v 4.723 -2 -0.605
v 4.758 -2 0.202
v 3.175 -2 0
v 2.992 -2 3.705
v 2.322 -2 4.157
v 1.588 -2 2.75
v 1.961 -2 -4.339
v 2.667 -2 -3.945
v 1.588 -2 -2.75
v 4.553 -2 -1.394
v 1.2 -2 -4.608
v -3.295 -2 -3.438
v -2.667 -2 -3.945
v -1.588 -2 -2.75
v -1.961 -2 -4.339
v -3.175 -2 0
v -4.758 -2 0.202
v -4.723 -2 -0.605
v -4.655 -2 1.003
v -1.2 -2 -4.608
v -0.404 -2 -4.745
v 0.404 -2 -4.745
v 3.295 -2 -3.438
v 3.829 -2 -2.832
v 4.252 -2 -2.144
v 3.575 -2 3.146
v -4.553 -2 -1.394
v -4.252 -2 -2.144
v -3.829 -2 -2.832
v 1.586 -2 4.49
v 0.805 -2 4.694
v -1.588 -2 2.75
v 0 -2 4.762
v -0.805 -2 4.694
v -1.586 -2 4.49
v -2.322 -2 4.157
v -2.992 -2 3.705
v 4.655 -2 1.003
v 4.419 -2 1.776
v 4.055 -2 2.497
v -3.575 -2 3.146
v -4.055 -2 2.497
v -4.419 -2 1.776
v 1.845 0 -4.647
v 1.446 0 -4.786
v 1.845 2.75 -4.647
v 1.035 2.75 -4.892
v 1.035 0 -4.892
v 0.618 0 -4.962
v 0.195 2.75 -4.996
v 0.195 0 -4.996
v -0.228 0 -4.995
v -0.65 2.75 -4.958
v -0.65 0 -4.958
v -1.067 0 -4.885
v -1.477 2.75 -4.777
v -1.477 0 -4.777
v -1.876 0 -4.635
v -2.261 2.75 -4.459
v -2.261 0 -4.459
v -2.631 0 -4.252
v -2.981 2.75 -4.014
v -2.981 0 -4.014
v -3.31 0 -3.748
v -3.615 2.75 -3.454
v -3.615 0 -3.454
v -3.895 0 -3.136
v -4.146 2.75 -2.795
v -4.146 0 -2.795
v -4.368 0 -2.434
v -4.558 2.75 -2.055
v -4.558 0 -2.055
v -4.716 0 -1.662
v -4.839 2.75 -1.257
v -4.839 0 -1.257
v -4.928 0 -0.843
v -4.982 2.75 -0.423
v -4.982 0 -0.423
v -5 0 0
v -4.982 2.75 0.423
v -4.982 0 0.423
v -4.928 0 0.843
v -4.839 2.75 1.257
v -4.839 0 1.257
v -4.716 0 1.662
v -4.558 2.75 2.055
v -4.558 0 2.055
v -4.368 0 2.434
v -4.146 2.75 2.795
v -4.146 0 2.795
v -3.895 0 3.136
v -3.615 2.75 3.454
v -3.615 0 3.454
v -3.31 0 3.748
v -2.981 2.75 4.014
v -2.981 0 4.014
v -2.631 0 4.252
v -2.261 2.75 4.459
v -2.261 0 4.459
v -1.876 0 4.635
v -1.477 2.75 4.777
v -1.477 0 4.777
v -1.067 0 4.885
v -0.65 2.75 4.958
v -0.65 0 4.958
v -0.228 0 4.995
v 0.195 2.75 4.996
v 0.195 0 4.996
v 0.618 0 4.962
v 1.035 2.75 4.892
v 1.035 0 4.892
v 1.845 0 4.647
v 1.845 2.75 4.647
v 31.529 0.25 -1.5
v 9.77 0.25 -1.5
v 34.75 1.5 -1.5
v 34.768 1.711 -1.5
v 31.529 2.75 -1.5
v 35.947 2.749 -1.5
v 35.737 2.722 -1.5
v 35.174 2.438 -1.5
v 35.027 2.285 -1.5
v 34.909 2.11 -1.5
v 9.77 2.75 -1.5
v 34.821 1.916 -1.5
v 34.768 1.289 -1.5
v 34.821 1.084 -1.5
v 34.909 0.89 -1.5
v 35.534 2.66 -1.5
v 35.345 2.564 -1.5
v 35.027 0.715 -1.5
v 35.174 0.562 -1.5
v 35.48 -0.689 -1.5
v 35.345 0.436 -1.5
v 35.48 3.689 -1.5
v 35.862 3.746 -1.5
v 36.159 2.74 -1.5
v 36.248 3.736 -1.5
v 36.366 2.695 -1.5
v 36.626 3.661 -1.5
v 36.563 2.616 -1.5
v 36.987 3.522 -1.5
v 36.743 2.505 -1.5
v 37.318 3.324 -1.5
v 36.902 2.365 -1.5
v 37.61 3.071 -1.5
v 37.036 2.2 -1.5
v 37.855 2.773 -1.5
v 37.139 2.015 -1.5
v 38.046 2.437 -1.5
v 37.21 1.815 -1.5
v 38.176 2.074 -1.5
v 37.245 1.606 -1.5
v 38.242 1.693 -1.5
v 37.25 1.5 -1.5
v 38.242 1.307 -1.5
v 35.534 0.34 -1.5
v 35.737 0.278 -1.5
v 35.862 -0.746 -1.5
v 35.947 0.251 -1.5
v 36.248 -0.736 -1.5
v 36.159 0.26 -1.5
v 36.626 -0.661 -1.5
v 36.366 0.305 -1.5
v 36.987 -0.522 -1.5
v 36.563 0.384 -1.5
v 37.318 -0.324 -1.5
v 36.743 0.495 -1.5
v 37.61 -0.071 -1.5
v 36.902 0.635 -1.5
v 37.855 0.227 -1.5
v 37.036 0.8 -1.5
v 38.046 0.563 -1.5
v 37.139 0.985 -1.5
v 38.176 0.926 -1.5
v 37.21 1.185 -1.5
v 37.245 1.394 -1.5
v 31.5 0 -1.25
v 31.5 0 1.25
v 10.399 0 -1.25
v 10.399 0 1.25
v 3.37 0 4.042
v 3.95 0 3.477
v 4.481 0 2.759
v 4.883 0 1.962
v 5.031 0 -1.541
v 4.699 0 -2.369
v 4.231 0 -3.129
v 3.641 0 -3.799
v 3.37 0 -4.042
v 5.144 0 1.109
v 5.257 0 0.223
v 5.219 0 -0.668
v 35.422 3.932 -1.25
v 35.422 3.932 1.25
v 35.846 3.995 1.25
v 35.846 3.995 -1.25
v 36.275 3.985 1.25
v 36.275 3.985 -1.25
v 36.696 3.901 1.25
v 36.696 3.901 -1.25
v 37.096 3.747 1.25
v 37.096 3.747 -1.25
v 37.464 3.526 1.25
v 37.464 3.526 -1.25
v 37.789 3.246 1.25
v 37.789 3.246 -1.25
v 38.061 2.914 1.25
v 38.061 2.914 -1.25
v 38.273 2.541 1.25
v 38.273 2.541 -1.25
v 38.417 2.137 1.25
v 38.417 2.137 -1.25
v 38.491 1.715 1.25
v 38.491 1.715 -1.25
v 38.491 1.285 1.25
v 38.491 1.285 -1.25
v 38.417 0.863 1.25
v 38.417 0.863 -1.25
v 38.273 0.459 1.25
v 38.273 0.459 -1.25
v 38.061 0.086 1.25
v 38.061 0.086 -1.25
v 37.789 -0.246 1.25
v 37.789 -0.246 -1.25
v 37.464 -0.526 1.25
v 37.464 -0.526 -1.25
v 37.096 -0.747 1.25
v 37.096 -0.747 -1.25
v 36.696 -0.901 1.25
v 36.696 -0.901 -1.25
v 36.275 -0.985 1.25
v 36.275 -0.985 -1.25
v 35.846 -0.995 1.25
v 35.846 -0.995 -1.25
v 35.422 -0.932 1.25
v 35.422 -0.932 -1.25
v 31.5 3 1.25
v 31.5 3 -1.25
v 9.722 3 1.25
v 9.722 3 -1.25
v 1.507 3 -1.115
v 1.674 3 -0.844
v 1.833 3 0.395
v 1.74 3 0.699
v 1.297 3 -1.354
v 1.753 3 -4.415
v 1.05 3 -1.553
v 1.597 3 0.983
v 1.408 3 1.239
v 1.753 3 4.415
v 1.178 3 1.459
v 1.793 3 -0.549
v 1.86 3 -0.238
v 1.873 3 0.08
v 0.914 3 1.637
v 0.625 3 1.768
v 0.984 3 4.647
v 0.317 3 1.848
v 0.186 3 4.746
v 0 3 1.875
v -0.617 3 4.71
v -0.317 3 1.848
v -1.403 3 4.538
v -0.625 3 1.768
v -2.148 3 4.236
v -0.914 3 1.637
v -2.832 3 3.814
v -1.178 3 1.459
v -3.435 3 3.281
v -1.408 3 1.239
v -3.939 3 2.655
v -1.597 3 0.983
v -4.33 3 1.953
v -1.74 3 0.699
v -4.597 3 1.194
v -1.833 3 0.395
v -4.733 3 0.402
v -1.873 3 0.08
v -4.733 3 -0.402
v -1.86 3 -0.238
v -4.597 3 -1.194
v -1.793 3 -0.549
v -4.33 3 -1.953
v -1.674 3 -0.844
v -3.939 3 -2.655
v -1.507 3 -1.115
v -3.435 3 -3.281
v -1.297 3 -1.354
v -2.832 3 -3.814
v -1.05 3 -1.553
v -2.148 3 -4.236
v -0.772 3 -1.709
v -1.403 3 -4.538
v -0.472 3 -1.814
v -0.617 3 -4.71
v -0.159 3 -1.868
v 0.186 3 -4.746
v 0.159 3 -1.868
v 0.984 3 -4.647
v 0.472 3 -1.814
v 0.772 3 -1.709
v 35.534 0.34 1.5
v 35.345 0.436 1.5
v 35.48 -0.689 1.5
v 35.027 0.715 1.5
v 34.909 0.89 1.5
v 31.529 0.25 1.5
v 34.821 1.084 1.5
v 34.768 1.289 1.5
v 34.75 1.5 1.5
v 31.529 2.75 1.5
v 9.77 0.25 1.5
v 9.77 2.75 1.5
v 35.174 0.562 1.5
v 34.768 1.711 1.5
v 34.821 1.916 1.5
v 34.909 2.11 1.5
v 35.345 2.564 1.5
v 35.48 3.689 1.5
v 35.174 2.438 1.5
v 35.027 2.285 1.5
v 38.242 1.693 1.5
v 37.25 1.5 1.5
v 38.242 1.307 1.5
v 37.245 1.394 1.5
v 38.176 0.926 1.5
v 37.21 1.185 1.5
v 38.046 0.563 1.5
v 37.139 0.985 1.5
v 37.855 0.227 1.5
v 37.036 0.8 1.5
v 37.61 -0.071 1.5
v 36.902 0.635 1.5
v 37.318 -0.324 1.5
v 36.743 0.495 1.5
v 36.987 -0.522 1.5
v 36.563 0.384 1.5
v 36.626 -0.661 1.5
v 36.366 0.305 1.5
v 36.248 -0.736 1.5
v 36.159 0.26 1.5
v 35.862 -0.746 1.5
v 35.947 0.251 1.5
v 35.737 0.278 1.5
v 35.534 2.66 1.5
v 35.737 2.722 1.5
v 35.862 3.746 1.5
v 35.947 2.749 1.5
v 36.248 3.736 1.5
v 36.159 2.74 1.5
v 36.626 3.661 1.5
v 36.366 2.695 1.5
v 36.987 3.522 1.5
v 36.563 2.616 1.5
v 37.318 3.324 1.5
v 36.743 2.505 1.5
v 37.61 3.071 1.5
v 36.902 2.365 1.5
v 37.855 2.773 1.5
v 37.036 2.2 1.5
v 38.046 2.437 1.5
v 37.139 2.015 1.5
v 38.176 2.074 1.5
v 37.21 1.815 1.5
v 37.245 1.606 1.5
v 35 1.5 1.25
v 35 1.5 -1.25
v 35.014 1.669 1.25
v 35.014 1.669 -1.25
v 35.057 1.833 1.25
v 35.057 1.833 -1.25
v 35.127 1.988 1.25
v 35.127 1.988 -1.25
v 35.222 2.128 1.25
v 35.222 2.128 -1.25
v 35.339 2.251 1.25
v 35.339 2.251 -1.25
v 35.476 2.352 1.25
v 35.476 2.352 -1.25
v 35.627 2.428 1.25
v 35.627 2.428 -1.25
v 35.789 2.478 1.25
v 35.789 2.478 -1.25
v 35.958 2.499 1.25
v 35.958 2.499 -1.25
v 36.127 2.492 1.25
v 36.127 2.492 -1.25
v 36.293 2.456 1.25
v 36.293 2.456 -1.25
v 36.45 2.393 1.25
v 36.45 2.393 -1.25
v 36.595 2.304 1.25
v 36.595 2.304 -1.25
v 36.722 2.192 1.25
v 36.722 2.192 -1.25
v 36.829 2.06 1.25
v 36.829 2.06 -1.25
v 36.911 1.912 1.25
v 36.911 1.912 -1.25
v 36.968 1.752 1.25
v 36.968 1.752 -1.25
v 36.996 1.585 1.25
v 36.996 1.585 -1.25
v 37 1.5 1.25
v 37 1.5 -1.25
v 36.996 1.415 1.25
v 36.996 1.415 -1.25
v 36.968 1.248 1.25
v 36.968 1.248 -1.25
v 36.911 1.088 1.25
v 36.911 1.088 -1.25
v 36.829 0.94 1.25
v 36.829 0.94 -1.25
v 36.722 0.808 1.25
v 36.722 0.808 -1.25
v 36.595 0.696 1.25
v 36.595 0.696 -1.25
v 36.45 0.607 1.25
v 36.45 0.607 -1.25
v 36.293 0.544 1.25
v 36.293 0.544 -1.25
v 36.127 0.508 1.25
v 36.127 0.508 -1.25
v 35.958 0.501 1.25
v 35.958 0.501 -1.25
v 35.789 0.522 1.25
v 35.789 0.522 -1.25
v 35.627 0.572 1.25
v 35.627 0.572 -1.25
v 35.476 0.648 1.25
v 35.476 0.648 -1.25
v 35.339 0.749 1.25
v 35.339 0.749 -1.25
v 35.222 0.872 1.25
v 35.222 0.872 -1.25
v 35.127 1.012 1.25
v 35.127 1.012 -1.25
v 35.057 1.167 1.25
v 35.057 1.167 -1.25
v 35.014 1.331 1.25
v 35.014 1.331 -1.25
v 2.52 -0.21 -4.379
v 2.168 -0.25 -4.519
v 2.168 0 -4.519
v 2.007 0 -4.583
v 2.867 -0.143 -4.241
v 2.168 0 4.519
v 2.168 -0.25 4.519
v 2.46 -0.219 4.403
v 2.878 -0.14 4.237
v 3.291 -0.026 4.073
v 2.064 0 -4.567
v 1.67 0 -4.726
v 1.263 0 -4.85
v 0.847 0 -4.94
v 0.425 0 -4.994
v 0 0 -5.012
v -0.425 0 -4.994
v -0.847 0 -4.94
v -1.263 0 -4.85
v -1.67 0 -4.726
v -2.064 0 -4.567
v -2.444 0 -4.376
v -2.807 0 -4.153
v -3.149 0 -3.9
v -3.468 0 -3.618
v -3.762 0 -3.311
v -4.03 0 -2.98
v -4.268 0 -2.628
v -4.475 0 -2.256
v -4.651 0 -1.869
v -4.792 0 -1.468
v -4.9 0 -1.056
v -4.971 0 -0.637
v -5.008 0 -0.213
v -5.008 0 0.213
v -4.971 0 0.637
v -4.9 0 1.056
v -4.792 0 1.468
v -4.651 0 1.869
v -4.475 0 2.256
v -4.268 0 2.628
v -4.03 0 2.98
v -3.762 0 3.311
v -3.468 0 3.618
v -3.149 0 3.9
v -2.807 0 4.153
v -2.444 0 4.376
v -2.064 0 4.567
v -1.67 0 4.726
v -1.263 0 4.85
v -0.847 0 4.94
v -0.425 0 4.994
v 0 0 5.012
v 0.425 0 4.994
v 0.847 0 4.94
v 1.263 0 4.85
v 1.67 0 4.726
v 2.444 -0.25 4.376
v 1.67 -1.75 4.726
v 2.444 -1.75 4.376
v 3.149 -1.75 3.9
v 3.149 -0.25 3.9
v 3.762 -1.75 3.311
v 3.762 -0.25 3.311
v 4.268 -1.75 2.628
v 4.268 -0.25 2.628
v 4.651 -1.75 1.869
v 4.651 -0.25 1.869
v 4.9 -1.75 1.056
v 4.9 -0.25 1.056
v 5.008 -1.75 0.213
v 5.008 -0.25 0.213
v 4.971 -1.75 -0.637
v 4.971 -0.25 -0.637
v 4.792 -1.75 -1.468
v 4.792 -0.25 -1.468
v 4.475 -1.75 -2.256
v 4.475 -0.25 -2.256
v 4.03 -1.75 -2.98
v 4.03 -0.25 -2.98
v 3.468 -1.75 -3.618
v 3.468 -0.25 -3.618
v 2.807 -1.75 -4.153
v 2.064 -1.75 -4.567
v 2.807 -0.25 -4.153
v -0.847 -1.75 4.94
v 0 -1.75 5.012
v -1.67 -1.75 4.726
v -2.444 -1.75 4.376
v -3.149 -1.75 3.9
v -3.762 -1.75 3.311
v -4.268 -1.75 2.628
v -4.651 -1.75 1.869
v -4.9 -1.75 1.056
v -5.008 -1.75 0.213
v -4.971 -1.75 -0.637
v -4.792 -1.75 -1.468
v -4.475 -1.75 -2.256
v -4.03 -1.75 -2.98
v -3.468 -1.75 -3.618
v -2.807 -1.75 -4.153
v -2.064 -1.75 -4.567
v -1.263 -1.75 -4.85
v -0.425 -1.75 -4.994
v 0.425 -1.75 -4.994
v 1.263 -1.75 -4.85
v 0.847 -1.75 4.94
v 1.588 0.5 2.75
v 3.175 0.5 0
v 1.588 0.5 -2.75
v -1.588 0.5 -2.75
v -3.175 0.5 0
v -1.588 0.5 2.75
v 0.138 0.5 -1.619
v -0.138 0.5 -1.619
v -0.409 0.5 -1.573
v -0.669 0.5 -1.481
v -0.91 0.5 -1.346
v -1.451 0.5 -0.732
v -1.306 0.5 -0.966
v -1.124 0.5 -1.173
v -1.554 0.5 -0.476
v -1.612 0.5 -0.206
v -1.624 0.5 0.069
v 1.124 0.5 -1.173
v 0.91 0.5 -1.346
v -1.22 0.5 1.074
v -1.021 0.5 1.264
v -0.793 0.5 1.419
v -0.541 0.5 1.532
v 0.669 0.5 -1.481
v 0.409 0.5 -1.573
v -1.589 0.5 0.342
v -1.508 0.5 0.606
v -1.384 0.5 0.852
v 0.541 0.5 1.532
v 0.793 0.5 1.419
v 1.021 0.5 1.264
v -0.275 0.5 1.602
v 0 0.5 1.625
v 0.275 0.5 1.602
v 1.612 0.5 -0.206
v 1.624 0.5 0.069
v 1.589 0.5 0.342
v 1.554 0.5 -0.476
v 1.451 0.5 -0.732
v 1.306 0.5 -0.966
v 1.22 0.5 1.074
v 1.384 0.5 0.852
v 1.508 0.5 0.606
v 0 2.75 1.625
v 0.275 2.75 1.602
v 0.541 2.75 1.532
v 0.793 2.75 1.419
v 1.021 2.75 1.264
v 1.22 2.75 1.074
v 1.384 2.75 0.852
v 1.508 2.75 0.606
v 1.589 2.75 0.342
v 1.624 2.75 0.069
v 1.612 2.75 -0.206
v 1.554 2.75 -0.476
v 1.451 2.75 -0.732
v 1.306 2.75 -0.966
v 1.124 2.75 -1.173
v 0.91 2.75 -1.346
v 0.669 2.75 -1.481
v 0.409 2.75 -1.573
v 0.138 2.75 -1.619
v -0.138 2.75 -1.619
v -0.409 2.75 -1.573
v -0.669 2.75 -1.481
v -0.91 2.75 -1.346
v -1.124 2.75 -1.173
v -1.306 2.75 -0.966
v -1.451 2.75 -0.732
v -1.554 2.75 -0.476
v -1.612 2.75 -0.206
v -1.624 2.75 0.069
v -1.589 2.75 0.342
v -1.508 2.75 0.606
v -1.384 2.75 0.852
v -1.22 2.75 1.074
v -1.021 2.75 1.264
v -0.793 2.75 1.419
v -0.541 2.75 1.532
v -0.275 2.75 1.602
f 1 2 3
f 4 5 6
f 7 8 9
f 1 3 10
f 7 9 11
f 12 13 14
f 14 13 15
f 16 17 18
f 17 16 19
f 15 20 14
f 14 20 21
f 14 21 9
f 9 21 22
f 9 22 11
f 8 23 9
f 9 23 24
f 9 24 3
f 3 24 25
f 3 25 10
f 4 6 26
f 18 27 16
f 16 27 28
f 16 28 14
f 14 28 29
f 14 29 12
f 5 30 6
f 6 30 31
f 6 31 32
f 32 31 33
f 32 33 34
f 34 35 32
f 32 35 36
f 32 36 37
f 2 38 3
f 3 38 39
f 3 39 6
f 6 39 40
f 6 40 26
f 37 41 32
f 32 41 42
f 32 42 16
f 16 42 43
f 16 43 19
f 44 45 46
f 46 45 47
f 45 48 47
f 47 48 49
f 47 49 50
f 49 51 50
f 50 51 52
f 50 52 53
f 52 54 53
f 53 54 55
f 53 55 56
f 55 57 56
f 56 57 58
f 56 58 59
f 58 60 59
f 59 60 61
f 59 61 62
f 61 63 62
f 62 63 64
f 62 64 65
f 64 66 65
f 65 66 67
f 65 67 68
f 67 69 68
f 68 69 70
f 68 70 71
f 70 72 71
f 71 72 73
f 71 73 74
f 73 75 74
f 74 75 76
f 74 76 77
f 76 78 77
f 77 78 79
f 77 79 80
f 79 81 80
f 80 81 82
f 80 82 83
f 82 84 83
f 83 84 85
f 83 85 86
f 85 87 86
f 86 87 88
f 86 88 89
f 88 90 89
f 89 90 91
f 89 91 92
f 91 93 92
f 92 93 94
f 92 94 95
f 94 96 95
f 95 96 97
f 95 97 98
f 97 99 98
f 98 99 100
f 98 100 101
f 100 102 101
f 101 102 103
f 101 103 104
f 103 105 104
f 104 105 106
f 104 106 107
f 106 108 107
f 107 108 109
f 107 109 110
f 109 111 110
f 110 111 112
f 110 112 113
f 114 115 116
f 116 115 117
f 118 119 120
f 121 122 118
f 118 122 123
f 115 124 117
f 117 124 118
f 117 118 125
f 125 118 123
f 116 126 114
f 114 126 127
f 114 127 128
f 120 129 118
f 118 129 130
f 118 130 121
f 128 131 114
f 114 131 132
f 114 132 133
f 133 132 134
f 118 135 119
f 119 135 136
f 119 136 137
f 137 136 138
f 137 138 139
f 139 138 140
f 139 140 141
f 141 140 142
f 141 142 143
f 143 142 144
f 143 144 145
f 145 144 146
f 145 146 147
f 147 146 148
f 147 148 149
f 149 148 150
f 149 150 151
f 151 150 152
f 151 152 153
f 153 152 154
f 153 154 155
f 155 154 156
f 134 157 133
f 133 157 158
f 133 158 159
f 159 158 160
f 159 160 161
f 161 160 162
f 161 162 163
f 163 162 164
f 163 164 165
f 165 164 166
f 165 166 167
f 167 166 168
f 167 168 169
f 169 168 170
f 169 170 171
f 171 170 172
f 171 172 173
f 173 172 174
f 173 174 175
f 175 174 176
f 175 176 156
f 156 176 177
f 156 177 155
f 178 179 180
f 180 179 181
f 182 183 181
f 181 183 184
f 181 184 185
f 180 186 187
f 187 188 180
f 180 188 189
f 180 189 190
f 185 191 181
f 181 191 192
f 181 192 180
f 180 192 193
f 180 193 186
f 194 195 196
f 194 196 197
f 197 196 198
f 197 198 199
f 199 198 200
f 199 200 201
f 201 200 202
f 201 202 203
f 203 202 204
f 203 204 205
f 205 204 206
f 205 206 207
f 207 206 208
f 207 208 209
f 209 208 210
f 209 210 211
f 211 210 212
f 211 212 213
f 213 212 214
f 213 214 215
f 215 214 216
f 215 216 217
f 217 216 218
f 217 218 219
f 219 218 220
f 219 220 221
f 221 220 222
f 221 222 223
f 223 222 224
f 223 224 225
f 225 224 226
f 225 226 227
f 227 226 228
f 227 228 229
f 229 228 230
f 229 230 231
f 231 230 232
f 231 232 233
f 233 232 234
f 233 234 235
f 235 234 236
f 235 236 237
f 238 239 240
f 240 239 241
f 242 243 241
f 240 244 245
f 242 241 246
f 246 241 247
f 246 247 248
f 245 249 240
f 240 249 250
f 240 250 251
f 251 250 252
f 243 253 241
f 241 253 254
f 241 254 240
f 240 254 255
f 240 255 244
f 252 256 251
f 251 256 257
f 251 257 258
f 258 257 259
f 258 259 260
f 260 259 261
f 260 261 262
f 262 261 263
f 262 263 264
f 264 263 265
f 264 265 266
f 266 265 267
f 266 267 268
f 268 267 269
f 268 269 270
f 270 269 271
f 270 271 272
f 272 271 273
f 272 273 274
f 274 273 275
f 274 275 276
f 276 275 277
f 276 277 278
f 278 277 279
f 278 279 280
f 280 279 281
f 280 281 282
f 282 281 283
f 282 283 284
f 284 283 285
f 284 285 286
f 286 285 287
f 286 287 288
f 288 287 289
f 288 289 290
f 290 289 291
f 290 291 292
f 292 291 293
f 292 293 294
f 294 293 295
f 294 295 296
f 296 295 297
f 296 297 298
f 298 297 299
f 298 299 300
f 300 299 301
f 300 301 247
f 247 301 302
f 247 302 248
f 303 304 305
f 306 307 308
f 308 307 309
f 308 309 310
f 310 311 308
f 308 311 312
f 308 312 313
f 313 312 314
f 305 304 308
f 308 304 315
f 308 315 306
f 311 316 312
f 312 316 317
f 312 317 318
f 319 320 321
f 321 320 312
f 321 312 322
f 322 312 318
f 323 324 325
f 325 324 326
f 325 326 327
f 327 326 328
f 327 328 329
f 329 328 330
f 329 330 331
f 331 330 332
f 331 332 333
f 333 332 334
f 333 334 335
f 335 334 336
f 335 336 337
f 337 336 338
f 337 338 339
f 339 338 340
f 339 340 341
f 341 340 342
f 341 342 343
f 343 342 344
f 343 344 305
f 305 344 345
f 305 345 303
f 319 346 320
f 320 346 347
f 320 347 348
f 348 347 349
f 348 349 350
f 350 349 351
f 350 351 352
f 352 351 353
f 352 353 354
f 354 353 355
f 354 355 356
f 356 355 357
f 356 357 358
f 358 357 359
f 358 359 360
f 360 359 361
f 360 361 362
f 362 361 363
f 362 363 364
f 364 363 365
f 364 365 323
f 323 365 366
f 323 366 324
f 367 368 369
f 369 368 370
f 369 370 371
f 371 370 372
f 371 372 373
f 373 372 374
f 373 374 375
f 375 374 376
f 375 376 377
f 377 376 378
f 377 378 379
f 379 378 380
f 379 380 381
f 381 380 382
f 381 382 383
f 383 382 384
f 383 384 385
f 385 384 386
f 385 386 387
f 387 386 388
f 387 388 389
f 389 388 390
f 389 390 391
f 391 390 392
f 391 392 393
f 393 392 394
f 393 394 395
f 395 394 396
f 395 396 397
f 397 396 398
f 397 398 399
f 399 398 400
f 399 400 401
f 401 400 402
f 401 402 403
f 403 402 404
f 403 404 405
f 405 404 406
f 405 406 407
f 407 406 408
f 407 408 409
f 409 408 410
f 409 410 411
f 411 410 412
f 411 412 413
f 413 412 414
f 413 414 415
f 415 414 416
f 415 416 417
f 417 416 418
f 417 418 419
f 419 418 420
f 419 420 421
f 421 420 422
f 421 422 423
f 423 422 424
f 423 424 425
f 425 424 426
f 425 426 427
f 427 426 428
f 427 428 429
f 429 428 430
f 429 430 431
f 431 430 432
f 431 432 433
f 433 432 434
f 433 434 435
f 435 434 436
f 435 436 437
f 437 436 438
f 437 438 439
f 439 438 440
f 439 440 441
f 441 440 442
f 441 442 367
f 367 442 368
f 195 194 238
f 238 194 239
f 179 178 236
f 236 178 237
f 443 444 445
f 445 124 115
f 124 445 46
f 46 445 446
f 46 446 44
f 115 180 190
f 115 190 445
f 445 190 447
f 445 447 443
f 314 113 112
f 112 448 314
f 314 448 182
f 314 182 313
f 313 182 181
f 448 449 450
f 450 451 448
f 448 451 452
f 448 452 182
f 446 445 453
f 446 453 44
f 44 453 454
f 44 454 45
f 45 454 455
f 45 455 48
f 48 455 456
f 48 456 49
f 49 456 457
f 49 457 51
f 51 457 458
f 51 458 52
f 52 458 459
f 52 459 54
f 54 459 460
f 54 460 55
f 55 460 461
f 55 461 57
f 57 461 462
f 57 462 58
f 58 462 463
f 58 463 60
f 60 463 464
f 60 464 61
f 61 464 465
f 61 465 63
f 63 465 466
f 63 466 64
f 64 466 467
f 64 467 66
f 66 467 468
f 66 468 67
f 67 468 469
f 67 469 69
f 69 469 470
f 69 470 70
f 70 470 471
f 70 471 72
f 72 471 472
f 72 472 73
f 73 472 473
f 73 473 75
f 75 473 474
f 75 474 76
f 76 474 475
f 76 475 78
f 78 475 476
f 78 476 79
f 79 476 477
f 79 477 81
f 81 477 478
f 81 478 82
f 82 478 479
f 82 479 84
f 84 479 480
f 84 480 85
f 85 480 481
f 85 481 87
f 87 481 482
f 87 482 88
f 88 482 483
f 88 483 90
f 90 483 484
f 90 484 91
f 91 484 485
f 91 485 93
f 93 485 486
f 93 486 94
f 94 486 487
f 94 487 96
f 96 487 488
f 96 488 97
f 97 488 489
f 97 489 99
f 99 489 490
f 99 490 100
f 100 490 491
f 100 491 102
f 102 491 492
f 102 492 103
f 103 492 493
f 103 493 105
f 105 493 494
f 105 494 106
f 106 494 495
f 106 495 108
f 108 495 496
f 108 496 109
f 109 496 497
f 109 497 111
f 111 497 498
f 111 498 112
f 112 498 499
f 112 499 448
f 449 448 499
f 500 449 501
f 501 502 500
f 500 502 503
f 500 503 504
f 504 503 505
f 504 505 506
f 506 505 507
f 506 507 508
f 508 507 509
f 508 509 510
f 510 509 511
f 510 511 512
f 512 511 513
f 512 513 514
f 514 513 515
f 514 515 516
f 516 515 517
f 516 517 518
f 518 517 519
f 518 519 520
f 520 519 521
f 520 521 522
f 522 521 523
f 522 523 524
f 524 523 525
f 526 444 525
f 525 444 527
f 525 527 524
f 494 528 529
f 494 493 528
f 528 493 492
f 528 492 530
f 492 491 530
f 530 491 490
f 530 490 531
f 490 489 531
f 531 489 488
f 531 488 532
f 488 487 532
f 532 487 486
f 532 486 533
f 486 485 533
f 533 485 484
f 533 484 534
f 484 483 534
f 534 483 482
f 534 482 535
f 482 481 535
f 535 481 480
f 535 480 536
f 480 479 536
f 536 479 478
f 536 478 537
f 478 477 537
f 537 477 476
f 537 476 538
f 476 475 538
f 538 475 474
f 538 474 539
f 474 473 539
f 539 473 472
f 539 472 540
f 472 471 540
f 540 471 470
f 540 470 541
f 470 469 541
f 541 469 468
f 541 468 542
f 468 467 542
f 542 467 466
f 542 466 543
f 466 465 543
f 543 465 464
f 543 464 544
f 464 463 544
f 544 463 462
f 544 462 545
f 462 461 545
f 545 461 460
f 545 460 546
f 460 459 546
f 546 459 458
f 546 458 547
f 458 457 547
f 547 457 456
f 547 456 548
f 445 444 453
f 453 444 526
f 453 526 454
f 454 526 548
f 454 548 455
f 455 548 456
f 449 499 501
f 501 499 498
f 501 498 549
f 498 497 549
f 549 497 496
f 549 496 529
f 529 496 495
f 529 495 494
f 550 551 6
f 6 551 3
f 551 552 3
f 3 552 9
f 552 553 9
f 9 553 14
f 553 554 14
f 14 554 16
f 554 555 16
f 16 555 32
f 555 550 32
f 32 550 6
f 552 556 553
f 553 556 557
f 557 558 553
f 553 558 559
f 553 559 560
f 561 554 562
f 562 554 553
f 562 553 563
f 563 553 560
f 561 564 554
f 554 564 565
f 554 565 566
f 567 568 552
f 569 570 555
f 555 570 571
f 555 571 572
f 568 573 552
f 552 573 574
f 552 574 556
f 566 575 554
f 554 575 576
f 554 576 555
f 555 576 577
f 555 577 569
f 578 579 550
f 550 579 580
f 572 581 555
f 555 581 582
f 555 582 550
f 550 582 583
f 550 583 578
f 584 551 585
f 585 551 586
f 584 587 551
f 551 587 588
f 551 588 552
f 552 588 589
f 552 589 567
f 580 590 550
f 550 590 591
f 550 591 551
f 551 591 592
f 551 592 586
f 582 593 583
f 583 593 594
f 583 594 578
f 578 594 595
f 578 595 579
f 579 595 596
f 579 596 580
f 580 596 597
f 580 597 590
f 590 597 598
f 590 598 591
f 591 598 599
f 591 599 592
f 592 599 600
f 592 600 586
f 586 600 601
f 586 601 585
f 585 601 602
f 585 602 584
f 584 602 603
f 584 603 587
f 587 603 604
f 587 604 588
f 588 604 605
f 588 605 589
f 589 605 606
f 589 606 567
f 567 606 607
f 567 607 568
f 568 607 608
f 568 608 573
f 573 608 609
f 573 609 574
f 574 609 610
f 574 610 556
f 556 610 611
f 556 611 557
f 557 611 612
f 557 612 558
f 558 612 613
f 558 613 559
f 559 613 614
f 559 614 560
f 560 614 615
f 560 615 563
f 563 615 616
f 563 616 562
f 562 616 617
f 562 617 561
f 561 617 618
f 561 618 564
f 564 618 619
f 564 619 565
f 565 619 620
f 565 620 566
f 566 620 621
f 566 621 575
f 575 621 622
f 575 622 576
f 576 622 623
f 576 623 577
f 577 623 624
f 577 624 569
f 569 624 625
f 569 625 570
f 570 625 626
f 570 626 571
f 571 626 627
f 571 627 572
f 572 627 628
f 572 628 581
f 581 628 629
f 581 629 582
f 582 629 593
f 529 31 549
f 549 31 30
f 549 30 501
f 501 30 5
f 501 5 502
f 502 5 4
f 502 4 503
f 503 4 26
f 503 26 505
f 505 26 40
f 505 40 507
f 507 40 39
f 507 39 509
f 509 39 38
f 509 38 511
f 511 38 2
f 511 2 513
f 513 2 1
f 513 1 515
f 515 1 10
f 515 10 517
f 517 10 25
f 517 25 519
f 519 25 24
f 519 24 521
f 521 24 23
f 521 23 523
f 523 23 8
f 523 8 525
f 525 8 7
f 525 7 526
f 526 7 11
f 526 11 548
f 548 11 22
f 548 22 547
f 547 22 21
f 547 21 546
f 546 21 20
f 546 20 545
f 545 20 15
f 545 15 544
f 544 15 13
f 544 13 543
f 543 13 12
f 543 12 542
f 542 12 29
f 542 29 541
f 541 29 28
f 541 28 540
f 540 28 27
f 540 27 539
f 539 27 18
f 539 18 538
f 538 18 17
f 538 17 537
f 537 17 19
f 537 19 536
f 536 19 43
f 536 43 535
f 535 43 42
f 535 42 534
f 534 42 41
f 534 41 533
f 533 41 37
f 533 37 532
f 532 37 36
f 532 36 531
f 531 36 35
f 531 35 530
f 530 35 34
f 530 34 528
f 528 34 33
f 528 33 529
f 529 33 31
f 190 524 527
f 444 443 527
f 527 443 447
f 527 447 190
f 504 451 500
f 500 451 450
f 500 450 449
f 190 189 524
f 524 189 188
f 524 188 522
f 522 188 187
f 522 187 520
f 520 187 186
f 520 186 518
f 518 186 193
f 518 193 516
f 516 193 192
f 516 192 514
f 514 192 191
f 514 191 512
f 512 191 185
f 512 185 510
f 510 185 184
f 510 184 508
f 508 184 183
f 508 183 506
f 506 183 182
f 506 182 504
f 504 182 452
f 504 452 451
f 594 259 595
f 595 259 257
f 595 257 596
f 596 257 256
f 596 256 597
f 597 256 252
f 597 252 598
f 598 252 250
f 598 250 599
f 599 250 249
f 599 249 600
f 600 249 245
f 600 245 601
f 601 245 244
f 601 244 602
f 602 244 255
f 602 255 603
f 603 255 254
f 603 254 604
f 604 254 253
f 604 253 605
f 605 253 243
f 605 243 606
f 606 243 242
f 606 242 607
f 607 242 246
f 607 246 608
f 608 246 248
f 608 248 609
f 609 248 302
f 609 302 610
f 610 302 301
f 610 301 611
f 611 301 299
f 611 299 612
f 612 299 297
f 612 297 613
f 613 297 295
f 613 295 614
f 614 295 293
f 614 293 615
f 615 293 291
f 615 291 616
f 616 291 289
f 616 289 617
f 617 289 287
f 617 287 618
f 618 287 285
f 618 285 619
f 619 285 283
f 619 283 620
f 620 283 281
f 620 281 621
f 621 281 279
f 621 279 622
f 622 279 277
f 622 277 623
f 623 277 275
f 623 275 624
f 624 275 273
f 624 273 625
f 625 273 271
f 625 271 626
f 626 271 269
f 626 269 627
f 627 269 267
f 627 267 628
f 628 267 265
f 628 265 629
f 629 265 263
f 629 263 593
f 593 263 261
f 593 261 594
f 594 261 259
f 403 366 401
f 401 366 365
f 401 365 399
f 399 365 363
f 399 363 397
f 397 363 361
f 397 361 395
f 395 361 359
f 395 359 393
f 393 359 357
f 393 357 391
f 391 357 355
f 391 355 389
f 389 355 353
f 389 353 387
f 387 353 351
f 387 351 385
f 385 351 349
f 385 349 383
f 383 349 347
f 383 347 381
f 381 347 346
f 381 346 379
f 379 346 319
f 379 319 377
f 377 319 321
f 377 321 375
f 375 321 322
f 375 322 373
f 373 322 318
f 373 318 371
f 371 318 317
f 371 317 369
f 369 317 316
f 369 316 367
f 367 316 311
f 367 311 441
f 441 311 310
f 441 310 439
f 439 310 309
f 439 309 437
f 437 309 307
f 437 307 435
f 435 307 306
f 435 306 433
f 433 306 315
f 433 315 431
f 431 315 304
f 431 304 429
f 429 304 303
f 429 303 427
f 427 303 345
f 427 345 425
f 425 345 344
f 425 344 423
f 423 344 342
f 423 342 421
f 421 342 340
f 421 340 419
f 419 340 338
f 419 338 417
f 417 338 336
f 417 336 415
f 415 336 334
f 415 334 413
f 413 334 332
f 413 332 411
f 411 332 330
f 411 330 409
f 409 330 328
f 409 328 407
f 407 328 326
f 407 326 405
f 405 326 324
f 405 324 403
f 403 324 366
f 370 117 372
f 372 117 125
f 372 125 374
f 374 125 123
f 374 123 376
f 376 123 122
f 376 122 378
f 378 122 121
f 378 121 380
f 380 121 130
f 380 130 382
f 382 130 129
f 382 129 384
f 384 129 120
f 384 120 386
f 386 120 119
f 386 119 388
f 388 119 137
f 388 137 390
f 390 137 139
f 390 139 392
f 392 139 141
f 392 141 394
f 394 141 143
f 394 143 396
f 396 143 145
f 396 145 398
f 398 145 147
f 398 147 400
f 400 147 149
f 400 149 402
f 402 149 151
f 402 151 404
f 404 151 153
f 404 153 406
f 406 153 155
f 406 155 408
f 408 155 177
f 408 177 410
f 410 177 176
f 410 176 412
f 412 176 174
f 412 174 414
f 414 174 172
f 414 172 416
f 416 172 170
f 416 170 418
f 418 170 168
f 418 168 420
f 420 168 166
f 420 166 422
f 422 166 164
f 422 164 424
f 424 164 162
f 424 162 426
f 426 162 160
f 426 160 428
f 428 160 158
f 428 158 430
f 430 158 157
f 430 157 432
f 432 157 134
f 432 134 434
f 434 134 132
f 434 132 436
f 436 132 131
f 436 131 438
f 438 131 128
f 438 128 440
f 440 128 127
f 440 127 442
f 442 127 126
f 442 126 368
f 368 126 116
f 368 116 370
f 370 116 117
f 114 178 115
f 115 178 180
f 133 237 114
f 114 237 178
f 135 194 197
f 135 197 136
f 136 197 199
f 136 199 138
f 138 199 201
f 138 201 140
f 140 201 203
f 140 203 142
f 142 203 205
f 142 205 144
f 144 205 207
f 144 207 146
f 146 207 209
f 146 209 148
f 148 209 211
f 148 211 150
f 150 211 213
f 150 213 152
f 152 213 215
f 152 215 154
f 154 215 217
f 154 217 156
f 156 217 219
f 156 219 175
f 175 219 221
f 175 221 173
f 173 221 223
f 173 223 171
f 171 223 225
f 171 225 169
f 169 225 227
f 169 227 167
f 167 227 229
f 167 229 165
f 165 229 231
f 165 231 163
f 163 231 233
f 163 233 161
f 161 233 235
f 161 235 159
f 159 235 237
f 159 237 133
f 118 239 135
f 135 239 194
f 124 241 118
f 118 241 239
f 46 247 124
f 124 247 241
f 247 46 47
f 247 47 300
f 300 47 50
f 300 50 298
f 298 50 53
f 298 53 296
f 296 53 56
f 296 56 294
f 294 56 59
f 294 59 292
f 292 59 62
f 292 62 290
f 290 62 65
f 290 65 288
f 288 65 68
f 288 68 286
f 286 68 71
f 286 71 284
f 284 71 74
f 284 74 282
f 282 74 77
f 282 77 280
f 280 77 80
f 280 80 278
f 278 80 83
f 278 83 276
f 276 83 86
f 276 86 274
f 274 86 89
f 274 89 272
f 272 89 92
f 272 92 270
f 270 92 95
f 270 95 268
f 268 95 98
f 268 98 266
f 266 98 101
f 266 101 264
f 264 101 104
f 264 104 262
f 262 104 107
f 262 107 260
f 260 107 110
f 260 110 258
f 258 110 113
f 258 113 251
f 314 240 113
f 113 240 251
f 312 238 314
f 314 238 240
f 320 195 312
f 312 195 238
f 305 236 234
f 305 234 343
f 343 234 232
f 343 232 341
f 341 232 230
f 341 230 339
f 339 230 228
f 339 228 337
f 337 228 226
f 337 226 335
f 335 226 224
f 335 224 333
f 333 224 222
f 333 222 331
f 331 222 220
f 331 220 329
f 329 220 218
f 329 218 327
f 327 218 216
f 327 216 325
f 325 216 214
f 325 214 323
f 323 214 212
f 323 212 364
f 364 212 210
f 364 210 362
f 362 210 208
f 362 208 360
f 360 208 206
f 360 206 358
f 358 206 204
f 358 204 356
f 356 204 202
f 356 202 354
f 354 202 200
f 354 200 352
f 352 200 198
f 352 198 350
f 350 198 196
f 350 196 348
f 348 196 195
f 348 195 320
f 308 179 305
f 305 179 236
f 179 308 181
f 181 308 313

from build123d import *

# Parameters (mm, degrees)
EXTRUDE_1_DEPTH     = 3
EXTRUDE_START       = 1.5
SKETCH_2_R          = 2.5
EXTRUDE_2_DEPTH     = 3
CUT_EXTRUDE_START   = -1.5
SKETCH_3_R          = 1
CUT_EXTRUDE_1_DEPTH = 3
EXTRUDE_3_DEPTH     = 3
EXTRUDE_4_DEPTH     = 3
SKETCH_7_R          = 5.01204864
EXTRUDE_5_DEPTH     = 2
CUT_EXTRUDE_START_2 = -2
CUT_EXTRUDE_2_DEPTH = 2.5
CUT_EXTRUDE_START_3 = 3
SKETCH_9_R          = 1.625
CUT_EXTRUDE_3_DEPTH = 5
CHAMFER_3_SIZE      = 0.25


with BuildPart() as part:
    # 草图1 → 凸台-拉伸1 (new body)
    with BuildSketch(Plane(origin=(0, 0, 0), x_dir=(1, 0, 0), z_dir=(0, 1, 0))):
        with BuildLine():
            Line((36, -1.5), (36, 1.5))
            Line((36, 1.5), (4.769696007, 1.5))
            ThreePointArc((4.769696007, 1.5), (-5, 0), (4.769696007, -1.5))
            Line((4.769696007, -1.5), (36, -1.5))
        make_face()
    extrude(amount=EXTRUDE_1_DEPTH)

    # 草图2 → 凸台-拉伸2 (add)
    with BuildSketch(Plane.XY.offset(EXTRUDE_START)):
        with Locations((36, 1.5)):
            Circle(SKETCH_2_R)
    extrude(amount=-EXTRUDE_2_DEPTH)

    # 草图3 → 切除-拉伸1 (cut)
    with BuildSketch(Plane.XY.offset(CUT_EXTRUDE_START)):
        with Locations(Location((36, 1.5, 0), (0, 0, 180))):
            Circle(SKETCH_3_R)
    extrude(amount=CUT_EXTRUDE_1_DEPTH, mode=Mode.SUBTRACT)

    # 草图5 → 凸台-拉伸3 (add)
    with BuildSketch(Plane.XY.offset(EXTRUDE_START)):
        with BuildLine():
            ThreePointArc((35.421854812, 3.932231104), (34.629244055, 3.590700395), (34, 3))
            Line((34, 3), (31.5, 3))
            Line((31.5, 3), (35.421854812, 3.932231104))
        make_face()
        with BuildLine():
            ThreePointArc((34, 0), (34.629244055, -0.590700395), (35.421854812, -0.932231104))
            Line((35.421854812, -0.932231104), (31.5, 0))
            Line((31.5, 0), (34, 0))
        make_face()
    extrude(amount=-EXTRUDE_3_DEPTH)

    # 草图6 → 凸台-拉伸4 (add)
    with BuildSketch(Plane(origin=(0, 0, 0), x_dir=(1, 0, 0), z_dir=(0, 1, 0))):
        with BuildLine():
            ThreePointArc((4.769696007, 1.5), (3.662773496, 3.40354085), (1.845456766, 4.646965604))
            Line((1.845456766, 4.646965604), (9.769696007, 1.5))
            Line((9.769696007, 1.5), (4.769696007, 1.5))
        make_face()
        with BuildLine():
            ThreePointArc((1.845456766, -4.646965604), (3.662773496, -3.40354085), (4.769696007, -1.5))
            Line((4.769696007, -1.5), (9.769696007, -1.5))
            Line((9.769696007, -1.5), (1.845456766, -4.646965604))
        make_face()
    extrude(amount=EXTRUDE_4_DEPTH)

    # 草图7 → 凸台-拉伸5 (add)
    with BuildSketch(Plane(origin=(0, 0, 0), x_dir=(1, 0, 0), z_dir=(0, 1, 0))):
        with Locations(Location((0, 0, 0), (0, 0, 270))):
            Circle(SKETCH_7_R)
    extrude(amount=-EXTRUDE_5_DEPTH)

    # 草图8 → 切除-拉伸2 (cut)
    with BuildSketch(Plane(origin=(0, 0, 0), x_dir=(1, 0, 0), z_dir=(0, 1, 0)).offset(CUT_EXTRUDE_START_2)):
        Polygon((3.175426481, 0), (1.58771324, 2.75), (-1.58771324, 2.75), (-3.175426481, 0), (-1.58771324, -2.75), (1.58771324, -2.75), align=None)
    extrude(amount=CUT_EXTRUDE_2_DEPTH, mode=Mode.SUBTRACT)

    # 草图9 → 切除-拉伸3 (cut)
    with BuildSketch(Plane(origin=(0, 0, 0), x_dir=(1, 0, 0), z_dir=(0, 1, 0)).offset(CUT_EXTRUDE_START_3)):
        with Locations(Location((0, 0, 0), (0, 0, 270))):
            Circle(SKETCH_9_R)
    extrude(amount=-CUT_EXTRUDE_3_DEPTH, mode=Mode.SUBTRACT)

    # 倒角3
    # the kernel refuses this chamfer: 0.25 mm, written as the material it adds along each edge
    with BuildSketch(Plane(origin=(0, 0, 0), x_dir=(0.31362035772557234, 0, 0.949548456488706), z_dir=(-0.949548456488706, 0, 0.31362035772557234))) as chamfer_3_piece_1_section:
        Polygon((5.01204864 + CHAMFER_3_SIZE, 0), (5.01204864, -CHAMFER_3_SIZE), (5.01204864, 0), align=None)
    chamfer_3_piece_1 = revolve(axis=Axis((0, 0, 0), (0, 1, 0)), revolution_arc=143.444907743, mode=Mode.PRIVATE)
    chamfer_3_piece_1 = split(chamfer_3_piece_1, bisect_by=Plane(origin=(1.845456766, 0, 4.646965604), z_dir=(-0.3690913531117439, 0, -0.929393120836464)), keep=Keep.TOP, mode=Mode.PRIVATE)
    chamfer_3_piece_1 = split(chamfer_3_piece_1, bisect_by=Plane(origin=(1.845456766, 0, -4.646965604), z_dir=(-0.3690913531117441, 0, 0.9293931208364639)), keep=Keep.TOP, mode=Mode.PRIVATE)
    add(chamfer_3_piece_1)
    # the kernel refuses this chamfer: 0.25 mm, written as the material it takes off along each edge
    with BuildSketch(Plane(origin=(0, 3, 0), x_dir=(0, 0, 1), z_dir=(-1, 0, 0))) as chamfer_3_2_piece_1:
        Polygon((1.625 + CHAMFER_3_SIZE, 0), (1.625, -CHAMFER_3_SIZE), (1.625, 0), align=None)
    revolve(axis=Axis((0, 3, 0), (0, 1, 0)), mode=Mode.SUBTRACT)
    with BuildSketch(Plane(origin=(36, 1.5, 1.5), x_dir=(-1, 0, 0), z_dir=(0, 1, 0))) as chamfer_3_2_piece_2:
        Polygon((1 + CHAMFER_3_SIZE, 0), (1, -CHAMFER_3_SIZE), (1, 0), align=None)
    revolve(axis=Axis((36, 1.5, 1.5), (0, 0, 1)), mode=Mode.SUBTRACT)
    with BuildSketch(Plane(origin=(36, 1.5, -1.5), x_dir=(-1, 0, 0), z_dir=(0, 1, 0))) as chamfer_3_2_piece_3:
        Polygon((1, CHAMFER_3_SIZE), (1 + CHAMFER_3_SIZE, 0), (1, 0), align=None)
    revolve(axis=Axis((36, 1.5, -1.5), (0, 0, 1)), mode=Mode.SUBTRACT)
    with BuildSketch(Plane(origin=(36, 1.5, 1.5), x_dir=(-0.23125807505671483, -0.9728924414965218, 0), z_dir=(-0.9728924414965218, 0.23125807505671483, 0))) as chamfer_3_2_piece_4:
        Polygon((2.5 - CHAMFER_3_SIZE, 0), (2.5, -CHAMFER_3_SIZE), (2.5, 0), align=None)
    revolve(axis=Axis((36, 1.5, 1.5), (0, 0, 1)), revolution_arc=206.742302393, mode=Mode.SUBTRACT)
    with BuildSketch(Plane(origin=(32.142920747, 3, -1.5), x_dir=(0, 0, 1), z_dir=(-1, 0, 0))) as chamfer_3_2_piece_5_section:
        Polygon((CHAMFER_3_SIZE, 0), (0, -CHAMFER_3_SIZE), (0, 0), align=None)
    chamfer_3_2_piece_5 = extrude(amount=23.016145487, mode=Mode.PRIVATE)
    chamfer_3_2_piece_5 = split(chamfer_3_2_piece_5, bisect_by=Plane(origin=(32.15463621, 2.950713568, -1.449340307), z_dir=(-0.16352415307675153, 0.6879388427473303, -0.7071067811865444)), keep=Keep.TOP, mode=Mode.PRIVATE)
    chamfer_3_2_piece_5 = split(chamfer_3_2_piece_5, bisect_by=Plane(origin=(30.572849722, -1.253881896, 2.453528571), z_dir=(0.26098699866263353, 0.7071067811865455, -0.6571801781315938)), keep=Keep.TOP, mode=Mode.PRIVATE)
    add(chamfer_3_2_piece_5, mode=Mode.SUBTRACT)
    with BuildSketch(Plane(origin=(30.874507265, 2.851319386, -1.5), x_dir=(0, 0, 1), z_dir=(0.9728924414965218, 0.231258075056715, 0))) as chamfer_3_2_piece_6_section:
        Polygon((CHAMFER_3_SIZE, 0), (0, CHAMFER_3_SIZE), (0, 0), align=None)
    chamfer_3_2_piece_6 = extrude(amount=4.674049621, mode=Mode.PRIVATE)
    chamfer_3_2_piece_6 = split(chamfer_3_2_piece_6, bisect_by=Plane(origin=(30.874507265, 2.800659693, -1.449340307), z_dir=(0, 0.7071067811865476, -0.7071067811865476)), keep=Keep.TOP, mode=Mode.PRIVATE)
    add(chamfer_3_2_piece_6, mode=Mode.SUBTRACT)
    with BuildSketch(Plane(origin=(30.874507265, 2.851319386, 1.5), x_dir=(0.23125807505671495, -0.9728924414965217, 0), z_dir=(0.9728924414965218, 0.231258075056715, 0))) as chamfer_3_2_piece_7_section:
        Polygon((CHAMFER_3_SIZE, 0), (0, CHAMFER_3_SIZE), (0, 0), align=None)
    chamfer_3_2_piece_7 = extrude(amount=4.674049621, mode=Mode.PRIVATE)
    chamfer_3_2_piece_7 = split(chamfer_3_2_piece_7, bisect_by=Plane(origin=(30.874507265, 2.800659693, 1.449340307), z_dir=(0, 0.7071067811865476, 0.7071067811865476)), keep=Keep.TOP, mode=Mode.PRIVATE)
    add(chamfer_3_2_piece_7, mode=Mode.SUBTRACT)
    with BuildSketch(Plane(origin=(36, 1.5, -1.5), x_dir=(-0.23125807505671483, 0.9728924414965218, 0), z_dir=(-0.9728924414965218, -0.23125807505671483, 0))) as chamfer_3_2_piece_8:
        Polygon((2.5, -CHAMFER_3_SIZE), (2.5 - CHAMFER_3_SIZE, 0), (2.5, 0), align=None)
    revolve(axis=Axis((36, 1.5, -1.5), (0, 0, -1)), revolution_arc=206.742302393, mode=Mode.SUBTRACT)
    with BuildSketch(Plane(origin=(32.142920747, 0, -1.5), x_dir=(0, 0, 1), z_dir=(-1, 0, 0))) as chamfer_3_2_piece_9_section:
        Polygon((CHAMFER_3_SIZE, 0), (0, CHAMFER_3_SIZE), (0, 0), align=None)
    chamfer_3_2_piece_9 = extrude(amount=23.016145487, mode=Mode.PRIVATE)
    chamfer_3_2_piece_9 = split(chamfer_3_2_piece_9, bisect_by=Plane(origin=(29.095051535, 0, 6.174708862), z_dir=(0.3690913531117441, 0, -0.9293931208364639)), keep=Keep.TOP, mode=Mode.PRIVATE)
    chamfer_3_2_piece_9 = split(chamfer_3_2_piece_9, bisect_by=Plane(origin=(32.15463621, 0.049286432, -1.449340307), z_dir=(-0.16352415307675064, -0.6879388427473256, -0.7071067811865488)), keep=Keep.TOP, mode=Mode.PRIVATE)
    add(chamfer_3_2_piece_9, mode=Mode.SUBTRACT)
    with BuildSketch(Plane(origin=(35.421854812, -0.932231104, 1.5), x_dir=(0.23125807505671522, 0.9728924414965215, 0), z_dir=(-0.9728924414965217, 0.23125807505671525, 0))) as chamfer_3_2_piece_10_section:
        Polygon((CHAMFER_3_SIZE, 0), (0, CHAMFER_3_SIZE), (0, 0), align=None)
    chamfer_3_2_piece_10 = extrude(amount=4.674049621, mode=Mode.PRIVATE)
    chamfer_3_2_piece_10 = split(chamfer_3_2_piece_10, bisect_by=Plane(origin=(35.421854812, -0.341115552, 0.908884448), z_dir=(0, -0.7071067811865476, 0.7071067811865476)), keep=Keep.TOP, mode=Mode.PRIVATE)
    add(chamfer_3_2_piece_10, mode=Mode.SUBTRACT)
    with BuildSketch(Plane(origin=(35.421854812, -0.932231104, -1.5), x_dir=(0, 0, 1), z_dir=(-0.9728924414965217, 0.23125807505671525, 0))) as chamfer_3_2_piece_11_section:
        Polygon((CHAMFER_3_SIZE, 0), (0, CHAMFER_3_SIZE), (0, 0), align=None)
    chamfer_3_2_piece_11 = extrude(amount=4.674049621, mode=Mode.PRIVATE)
    chamfer_3_2_piece_11 = split(chamfer_3_2_piece_11, bisect_by=Plane(origin=(35.421854812, -0.341115552, -0.908884448), z_dir=(0, -0.7071067811865476, -0.7071067811865476)), keep=Keep.TOP, mode=Mode.PRIVATE)
    add(chamfer_3_2_piece_11, mode=Mode.SUBTRACT)
    with BuildSketch(Plane(origin=(0, 3, 0), x_dir=(0.36909135311174435, 0, -0.9293931208364636), z_dir=(0.9293931208364636, 0, 0.36909135311174435))) as chamfer_3_2_piece_12:
        Polygon((5 - CHAMFER_3_SIZE, 0), (5, -CHAMFER_3_SIZE), (5, 0), align=None)
    revolve(axis=Axis((0, 3, 0), (0, 1, 0)), revolution_arc=223.319179184, mode=Mode.SUBTRACT)
    with BuildSketch(Plane(origin=(1.845456766, 3, -4.646965604), x_dir=(-0.3690913531117441, 0, 0.9293931208364639), z_dir=(0.9293931208364639, 0, 0.3690913531117441))) as chamfer_3_2_piece_13_section:
        Polygon((CHAMFER_3_SIZE, 0), (0, CHAMFER_3_SIZE), (0, 0), align=None)
    chamfer_3_2_piece_13 = extrude(amount=9.169171979, mode=Mode.PRIVATE)
    chamfer_3_2_piece_13 = split(chamfer_3_2_piece_13, bisect_by=Plane(origin=(1.845456766, 1.301517198, -2.948482802), z_dir=(0, 0.7071067811865476, -0.7071067811865476)), keep=Keep.TOP, mode=Mode.PRIVATE)
    add(chamfer_3_2_piece_13, mode=Mode.SUBTRACT)
    with BuildSketch(Plane(origin=(9.12677526, 0, 1.5), x_dir=(0, 1, 0), z_dir=(1, 0, 0))) as chamfer_3_2_piece_14_section:
        Polygon((CHAMFER_3_SIZE, 0), (0, -CHAMFER_3_SIZE), (0, 0), align=None)
    chamfer_3_2_piece_14 = extrude(amount=23.016145487, mode=Mode.PRIVATE)
    chamfer_3_2_piece_14 = split(chamfer_3_2_piece_14, bisect_by=Plane(origin=(9.214359342, 0, 1.720541724), z_dir=(0.3690913531117439, 0, 0.929393120836464)), keep=Keep.TOP, mode=Mode.PRIVATE)
    chamfer_3_2_piece_14 = split(chamfer_3_2_piece_14, bisect_by=Plane(origin=(9.753945875, 2.638478895, -1.211994443), z_dir=(-0.16352415307675064, -0.6879388427473256, 0.7071067811865488)), keep=Keep.TOP, mode=Mode.PRIVATE)
    add(chamfer_3_2_piece_14, mode=Mode.SUBTRACT)
    with BuildSketch(Plane(origin=(9.12677526, 3, 1.5), x_dir=(0, -1, 0), z_dir=(1, 0, 0))) as chamfer_3_2_piece_15_section:
        Polygon((CHAMFER_3_SIZE, 0), (0, CHAMFER_3_SIZE), (0, 0), align=None)
    chamfer_3_2_piece_15 = extrude(amount=23.016145487, mode=Mode.PRIVATE)
    chamfer_3_2_piece_15 = split(chamfer_3_2_piece_15, bisect_by=Plane(origin=(9.753945875, 0.361521105, -1.211994443), z_dir=(-0.16352415307675153, 0.6879388427473303, 0.7071067811865444)), keep=Keep.TOP, mode=Mode.PRIVATE)
    chamfer_3_2_piece_15 = split(chamfer_3_2_piece_15, bisect_by=Plane(origin=(9.124430882, 2.993648244, 1.494096722), z_dir=(0.2609869986626325, 0.7071067811865481, 0.6571801781315915)), keep=Keep.TOP, mode=Mode.PRIVATE)
    add(chamfer_3_2_piece_15, mode=Mode.SUBTRACT)
    with BuildSketch(Plane(origin=(10.367222127, 3, 1.262703512), x_dir=(-0.3690913531117439, 0, -0.929393120836464), z_dir=(-0.9293931208364639, 0, 0.36909135311174385))) as chamfer_3_2_piece_16_section:
        Polygon((CHAMFER_3_SIZE, 0), (0, CHAMFER_3_SIZE), (0, 0), align=None)
    chamfer_3_2_piece_16 = extrude(amount=9.169171979, mode=Mode.PRIVATE)
    chamfer_3_2_piece_16 = split(chamfer_3_2_piece_16, bisect_by=Plane(origin=(10.367222127, 2.993648244, 1.256351756), z_dir=(0, 0.7071067811865476, 0.7071067811865476)), keep=Keep.TOP, mode=Mode.PRIVATE)
    add(chamfer_3_2_piece_16, mode=Mode.SUBTRACT)
    with BuildSketch(Plane(origin=(0, -2, 0), x_dir=(0, 0, 1), z_dir=(-1, 0, 0))) as chamfer_3_2_piece_17:
        Polygon((5.01204864, CHAMFER_3_SIZE), (5.01204864 - CHAMFER_3_SIZE, 0), (5.01204864, 0), align=None)
    revolve(axis=Axis((0, -2, 0), (0, 1, 0)), mode=Mode.SUBTRACT)


solid = part.part
